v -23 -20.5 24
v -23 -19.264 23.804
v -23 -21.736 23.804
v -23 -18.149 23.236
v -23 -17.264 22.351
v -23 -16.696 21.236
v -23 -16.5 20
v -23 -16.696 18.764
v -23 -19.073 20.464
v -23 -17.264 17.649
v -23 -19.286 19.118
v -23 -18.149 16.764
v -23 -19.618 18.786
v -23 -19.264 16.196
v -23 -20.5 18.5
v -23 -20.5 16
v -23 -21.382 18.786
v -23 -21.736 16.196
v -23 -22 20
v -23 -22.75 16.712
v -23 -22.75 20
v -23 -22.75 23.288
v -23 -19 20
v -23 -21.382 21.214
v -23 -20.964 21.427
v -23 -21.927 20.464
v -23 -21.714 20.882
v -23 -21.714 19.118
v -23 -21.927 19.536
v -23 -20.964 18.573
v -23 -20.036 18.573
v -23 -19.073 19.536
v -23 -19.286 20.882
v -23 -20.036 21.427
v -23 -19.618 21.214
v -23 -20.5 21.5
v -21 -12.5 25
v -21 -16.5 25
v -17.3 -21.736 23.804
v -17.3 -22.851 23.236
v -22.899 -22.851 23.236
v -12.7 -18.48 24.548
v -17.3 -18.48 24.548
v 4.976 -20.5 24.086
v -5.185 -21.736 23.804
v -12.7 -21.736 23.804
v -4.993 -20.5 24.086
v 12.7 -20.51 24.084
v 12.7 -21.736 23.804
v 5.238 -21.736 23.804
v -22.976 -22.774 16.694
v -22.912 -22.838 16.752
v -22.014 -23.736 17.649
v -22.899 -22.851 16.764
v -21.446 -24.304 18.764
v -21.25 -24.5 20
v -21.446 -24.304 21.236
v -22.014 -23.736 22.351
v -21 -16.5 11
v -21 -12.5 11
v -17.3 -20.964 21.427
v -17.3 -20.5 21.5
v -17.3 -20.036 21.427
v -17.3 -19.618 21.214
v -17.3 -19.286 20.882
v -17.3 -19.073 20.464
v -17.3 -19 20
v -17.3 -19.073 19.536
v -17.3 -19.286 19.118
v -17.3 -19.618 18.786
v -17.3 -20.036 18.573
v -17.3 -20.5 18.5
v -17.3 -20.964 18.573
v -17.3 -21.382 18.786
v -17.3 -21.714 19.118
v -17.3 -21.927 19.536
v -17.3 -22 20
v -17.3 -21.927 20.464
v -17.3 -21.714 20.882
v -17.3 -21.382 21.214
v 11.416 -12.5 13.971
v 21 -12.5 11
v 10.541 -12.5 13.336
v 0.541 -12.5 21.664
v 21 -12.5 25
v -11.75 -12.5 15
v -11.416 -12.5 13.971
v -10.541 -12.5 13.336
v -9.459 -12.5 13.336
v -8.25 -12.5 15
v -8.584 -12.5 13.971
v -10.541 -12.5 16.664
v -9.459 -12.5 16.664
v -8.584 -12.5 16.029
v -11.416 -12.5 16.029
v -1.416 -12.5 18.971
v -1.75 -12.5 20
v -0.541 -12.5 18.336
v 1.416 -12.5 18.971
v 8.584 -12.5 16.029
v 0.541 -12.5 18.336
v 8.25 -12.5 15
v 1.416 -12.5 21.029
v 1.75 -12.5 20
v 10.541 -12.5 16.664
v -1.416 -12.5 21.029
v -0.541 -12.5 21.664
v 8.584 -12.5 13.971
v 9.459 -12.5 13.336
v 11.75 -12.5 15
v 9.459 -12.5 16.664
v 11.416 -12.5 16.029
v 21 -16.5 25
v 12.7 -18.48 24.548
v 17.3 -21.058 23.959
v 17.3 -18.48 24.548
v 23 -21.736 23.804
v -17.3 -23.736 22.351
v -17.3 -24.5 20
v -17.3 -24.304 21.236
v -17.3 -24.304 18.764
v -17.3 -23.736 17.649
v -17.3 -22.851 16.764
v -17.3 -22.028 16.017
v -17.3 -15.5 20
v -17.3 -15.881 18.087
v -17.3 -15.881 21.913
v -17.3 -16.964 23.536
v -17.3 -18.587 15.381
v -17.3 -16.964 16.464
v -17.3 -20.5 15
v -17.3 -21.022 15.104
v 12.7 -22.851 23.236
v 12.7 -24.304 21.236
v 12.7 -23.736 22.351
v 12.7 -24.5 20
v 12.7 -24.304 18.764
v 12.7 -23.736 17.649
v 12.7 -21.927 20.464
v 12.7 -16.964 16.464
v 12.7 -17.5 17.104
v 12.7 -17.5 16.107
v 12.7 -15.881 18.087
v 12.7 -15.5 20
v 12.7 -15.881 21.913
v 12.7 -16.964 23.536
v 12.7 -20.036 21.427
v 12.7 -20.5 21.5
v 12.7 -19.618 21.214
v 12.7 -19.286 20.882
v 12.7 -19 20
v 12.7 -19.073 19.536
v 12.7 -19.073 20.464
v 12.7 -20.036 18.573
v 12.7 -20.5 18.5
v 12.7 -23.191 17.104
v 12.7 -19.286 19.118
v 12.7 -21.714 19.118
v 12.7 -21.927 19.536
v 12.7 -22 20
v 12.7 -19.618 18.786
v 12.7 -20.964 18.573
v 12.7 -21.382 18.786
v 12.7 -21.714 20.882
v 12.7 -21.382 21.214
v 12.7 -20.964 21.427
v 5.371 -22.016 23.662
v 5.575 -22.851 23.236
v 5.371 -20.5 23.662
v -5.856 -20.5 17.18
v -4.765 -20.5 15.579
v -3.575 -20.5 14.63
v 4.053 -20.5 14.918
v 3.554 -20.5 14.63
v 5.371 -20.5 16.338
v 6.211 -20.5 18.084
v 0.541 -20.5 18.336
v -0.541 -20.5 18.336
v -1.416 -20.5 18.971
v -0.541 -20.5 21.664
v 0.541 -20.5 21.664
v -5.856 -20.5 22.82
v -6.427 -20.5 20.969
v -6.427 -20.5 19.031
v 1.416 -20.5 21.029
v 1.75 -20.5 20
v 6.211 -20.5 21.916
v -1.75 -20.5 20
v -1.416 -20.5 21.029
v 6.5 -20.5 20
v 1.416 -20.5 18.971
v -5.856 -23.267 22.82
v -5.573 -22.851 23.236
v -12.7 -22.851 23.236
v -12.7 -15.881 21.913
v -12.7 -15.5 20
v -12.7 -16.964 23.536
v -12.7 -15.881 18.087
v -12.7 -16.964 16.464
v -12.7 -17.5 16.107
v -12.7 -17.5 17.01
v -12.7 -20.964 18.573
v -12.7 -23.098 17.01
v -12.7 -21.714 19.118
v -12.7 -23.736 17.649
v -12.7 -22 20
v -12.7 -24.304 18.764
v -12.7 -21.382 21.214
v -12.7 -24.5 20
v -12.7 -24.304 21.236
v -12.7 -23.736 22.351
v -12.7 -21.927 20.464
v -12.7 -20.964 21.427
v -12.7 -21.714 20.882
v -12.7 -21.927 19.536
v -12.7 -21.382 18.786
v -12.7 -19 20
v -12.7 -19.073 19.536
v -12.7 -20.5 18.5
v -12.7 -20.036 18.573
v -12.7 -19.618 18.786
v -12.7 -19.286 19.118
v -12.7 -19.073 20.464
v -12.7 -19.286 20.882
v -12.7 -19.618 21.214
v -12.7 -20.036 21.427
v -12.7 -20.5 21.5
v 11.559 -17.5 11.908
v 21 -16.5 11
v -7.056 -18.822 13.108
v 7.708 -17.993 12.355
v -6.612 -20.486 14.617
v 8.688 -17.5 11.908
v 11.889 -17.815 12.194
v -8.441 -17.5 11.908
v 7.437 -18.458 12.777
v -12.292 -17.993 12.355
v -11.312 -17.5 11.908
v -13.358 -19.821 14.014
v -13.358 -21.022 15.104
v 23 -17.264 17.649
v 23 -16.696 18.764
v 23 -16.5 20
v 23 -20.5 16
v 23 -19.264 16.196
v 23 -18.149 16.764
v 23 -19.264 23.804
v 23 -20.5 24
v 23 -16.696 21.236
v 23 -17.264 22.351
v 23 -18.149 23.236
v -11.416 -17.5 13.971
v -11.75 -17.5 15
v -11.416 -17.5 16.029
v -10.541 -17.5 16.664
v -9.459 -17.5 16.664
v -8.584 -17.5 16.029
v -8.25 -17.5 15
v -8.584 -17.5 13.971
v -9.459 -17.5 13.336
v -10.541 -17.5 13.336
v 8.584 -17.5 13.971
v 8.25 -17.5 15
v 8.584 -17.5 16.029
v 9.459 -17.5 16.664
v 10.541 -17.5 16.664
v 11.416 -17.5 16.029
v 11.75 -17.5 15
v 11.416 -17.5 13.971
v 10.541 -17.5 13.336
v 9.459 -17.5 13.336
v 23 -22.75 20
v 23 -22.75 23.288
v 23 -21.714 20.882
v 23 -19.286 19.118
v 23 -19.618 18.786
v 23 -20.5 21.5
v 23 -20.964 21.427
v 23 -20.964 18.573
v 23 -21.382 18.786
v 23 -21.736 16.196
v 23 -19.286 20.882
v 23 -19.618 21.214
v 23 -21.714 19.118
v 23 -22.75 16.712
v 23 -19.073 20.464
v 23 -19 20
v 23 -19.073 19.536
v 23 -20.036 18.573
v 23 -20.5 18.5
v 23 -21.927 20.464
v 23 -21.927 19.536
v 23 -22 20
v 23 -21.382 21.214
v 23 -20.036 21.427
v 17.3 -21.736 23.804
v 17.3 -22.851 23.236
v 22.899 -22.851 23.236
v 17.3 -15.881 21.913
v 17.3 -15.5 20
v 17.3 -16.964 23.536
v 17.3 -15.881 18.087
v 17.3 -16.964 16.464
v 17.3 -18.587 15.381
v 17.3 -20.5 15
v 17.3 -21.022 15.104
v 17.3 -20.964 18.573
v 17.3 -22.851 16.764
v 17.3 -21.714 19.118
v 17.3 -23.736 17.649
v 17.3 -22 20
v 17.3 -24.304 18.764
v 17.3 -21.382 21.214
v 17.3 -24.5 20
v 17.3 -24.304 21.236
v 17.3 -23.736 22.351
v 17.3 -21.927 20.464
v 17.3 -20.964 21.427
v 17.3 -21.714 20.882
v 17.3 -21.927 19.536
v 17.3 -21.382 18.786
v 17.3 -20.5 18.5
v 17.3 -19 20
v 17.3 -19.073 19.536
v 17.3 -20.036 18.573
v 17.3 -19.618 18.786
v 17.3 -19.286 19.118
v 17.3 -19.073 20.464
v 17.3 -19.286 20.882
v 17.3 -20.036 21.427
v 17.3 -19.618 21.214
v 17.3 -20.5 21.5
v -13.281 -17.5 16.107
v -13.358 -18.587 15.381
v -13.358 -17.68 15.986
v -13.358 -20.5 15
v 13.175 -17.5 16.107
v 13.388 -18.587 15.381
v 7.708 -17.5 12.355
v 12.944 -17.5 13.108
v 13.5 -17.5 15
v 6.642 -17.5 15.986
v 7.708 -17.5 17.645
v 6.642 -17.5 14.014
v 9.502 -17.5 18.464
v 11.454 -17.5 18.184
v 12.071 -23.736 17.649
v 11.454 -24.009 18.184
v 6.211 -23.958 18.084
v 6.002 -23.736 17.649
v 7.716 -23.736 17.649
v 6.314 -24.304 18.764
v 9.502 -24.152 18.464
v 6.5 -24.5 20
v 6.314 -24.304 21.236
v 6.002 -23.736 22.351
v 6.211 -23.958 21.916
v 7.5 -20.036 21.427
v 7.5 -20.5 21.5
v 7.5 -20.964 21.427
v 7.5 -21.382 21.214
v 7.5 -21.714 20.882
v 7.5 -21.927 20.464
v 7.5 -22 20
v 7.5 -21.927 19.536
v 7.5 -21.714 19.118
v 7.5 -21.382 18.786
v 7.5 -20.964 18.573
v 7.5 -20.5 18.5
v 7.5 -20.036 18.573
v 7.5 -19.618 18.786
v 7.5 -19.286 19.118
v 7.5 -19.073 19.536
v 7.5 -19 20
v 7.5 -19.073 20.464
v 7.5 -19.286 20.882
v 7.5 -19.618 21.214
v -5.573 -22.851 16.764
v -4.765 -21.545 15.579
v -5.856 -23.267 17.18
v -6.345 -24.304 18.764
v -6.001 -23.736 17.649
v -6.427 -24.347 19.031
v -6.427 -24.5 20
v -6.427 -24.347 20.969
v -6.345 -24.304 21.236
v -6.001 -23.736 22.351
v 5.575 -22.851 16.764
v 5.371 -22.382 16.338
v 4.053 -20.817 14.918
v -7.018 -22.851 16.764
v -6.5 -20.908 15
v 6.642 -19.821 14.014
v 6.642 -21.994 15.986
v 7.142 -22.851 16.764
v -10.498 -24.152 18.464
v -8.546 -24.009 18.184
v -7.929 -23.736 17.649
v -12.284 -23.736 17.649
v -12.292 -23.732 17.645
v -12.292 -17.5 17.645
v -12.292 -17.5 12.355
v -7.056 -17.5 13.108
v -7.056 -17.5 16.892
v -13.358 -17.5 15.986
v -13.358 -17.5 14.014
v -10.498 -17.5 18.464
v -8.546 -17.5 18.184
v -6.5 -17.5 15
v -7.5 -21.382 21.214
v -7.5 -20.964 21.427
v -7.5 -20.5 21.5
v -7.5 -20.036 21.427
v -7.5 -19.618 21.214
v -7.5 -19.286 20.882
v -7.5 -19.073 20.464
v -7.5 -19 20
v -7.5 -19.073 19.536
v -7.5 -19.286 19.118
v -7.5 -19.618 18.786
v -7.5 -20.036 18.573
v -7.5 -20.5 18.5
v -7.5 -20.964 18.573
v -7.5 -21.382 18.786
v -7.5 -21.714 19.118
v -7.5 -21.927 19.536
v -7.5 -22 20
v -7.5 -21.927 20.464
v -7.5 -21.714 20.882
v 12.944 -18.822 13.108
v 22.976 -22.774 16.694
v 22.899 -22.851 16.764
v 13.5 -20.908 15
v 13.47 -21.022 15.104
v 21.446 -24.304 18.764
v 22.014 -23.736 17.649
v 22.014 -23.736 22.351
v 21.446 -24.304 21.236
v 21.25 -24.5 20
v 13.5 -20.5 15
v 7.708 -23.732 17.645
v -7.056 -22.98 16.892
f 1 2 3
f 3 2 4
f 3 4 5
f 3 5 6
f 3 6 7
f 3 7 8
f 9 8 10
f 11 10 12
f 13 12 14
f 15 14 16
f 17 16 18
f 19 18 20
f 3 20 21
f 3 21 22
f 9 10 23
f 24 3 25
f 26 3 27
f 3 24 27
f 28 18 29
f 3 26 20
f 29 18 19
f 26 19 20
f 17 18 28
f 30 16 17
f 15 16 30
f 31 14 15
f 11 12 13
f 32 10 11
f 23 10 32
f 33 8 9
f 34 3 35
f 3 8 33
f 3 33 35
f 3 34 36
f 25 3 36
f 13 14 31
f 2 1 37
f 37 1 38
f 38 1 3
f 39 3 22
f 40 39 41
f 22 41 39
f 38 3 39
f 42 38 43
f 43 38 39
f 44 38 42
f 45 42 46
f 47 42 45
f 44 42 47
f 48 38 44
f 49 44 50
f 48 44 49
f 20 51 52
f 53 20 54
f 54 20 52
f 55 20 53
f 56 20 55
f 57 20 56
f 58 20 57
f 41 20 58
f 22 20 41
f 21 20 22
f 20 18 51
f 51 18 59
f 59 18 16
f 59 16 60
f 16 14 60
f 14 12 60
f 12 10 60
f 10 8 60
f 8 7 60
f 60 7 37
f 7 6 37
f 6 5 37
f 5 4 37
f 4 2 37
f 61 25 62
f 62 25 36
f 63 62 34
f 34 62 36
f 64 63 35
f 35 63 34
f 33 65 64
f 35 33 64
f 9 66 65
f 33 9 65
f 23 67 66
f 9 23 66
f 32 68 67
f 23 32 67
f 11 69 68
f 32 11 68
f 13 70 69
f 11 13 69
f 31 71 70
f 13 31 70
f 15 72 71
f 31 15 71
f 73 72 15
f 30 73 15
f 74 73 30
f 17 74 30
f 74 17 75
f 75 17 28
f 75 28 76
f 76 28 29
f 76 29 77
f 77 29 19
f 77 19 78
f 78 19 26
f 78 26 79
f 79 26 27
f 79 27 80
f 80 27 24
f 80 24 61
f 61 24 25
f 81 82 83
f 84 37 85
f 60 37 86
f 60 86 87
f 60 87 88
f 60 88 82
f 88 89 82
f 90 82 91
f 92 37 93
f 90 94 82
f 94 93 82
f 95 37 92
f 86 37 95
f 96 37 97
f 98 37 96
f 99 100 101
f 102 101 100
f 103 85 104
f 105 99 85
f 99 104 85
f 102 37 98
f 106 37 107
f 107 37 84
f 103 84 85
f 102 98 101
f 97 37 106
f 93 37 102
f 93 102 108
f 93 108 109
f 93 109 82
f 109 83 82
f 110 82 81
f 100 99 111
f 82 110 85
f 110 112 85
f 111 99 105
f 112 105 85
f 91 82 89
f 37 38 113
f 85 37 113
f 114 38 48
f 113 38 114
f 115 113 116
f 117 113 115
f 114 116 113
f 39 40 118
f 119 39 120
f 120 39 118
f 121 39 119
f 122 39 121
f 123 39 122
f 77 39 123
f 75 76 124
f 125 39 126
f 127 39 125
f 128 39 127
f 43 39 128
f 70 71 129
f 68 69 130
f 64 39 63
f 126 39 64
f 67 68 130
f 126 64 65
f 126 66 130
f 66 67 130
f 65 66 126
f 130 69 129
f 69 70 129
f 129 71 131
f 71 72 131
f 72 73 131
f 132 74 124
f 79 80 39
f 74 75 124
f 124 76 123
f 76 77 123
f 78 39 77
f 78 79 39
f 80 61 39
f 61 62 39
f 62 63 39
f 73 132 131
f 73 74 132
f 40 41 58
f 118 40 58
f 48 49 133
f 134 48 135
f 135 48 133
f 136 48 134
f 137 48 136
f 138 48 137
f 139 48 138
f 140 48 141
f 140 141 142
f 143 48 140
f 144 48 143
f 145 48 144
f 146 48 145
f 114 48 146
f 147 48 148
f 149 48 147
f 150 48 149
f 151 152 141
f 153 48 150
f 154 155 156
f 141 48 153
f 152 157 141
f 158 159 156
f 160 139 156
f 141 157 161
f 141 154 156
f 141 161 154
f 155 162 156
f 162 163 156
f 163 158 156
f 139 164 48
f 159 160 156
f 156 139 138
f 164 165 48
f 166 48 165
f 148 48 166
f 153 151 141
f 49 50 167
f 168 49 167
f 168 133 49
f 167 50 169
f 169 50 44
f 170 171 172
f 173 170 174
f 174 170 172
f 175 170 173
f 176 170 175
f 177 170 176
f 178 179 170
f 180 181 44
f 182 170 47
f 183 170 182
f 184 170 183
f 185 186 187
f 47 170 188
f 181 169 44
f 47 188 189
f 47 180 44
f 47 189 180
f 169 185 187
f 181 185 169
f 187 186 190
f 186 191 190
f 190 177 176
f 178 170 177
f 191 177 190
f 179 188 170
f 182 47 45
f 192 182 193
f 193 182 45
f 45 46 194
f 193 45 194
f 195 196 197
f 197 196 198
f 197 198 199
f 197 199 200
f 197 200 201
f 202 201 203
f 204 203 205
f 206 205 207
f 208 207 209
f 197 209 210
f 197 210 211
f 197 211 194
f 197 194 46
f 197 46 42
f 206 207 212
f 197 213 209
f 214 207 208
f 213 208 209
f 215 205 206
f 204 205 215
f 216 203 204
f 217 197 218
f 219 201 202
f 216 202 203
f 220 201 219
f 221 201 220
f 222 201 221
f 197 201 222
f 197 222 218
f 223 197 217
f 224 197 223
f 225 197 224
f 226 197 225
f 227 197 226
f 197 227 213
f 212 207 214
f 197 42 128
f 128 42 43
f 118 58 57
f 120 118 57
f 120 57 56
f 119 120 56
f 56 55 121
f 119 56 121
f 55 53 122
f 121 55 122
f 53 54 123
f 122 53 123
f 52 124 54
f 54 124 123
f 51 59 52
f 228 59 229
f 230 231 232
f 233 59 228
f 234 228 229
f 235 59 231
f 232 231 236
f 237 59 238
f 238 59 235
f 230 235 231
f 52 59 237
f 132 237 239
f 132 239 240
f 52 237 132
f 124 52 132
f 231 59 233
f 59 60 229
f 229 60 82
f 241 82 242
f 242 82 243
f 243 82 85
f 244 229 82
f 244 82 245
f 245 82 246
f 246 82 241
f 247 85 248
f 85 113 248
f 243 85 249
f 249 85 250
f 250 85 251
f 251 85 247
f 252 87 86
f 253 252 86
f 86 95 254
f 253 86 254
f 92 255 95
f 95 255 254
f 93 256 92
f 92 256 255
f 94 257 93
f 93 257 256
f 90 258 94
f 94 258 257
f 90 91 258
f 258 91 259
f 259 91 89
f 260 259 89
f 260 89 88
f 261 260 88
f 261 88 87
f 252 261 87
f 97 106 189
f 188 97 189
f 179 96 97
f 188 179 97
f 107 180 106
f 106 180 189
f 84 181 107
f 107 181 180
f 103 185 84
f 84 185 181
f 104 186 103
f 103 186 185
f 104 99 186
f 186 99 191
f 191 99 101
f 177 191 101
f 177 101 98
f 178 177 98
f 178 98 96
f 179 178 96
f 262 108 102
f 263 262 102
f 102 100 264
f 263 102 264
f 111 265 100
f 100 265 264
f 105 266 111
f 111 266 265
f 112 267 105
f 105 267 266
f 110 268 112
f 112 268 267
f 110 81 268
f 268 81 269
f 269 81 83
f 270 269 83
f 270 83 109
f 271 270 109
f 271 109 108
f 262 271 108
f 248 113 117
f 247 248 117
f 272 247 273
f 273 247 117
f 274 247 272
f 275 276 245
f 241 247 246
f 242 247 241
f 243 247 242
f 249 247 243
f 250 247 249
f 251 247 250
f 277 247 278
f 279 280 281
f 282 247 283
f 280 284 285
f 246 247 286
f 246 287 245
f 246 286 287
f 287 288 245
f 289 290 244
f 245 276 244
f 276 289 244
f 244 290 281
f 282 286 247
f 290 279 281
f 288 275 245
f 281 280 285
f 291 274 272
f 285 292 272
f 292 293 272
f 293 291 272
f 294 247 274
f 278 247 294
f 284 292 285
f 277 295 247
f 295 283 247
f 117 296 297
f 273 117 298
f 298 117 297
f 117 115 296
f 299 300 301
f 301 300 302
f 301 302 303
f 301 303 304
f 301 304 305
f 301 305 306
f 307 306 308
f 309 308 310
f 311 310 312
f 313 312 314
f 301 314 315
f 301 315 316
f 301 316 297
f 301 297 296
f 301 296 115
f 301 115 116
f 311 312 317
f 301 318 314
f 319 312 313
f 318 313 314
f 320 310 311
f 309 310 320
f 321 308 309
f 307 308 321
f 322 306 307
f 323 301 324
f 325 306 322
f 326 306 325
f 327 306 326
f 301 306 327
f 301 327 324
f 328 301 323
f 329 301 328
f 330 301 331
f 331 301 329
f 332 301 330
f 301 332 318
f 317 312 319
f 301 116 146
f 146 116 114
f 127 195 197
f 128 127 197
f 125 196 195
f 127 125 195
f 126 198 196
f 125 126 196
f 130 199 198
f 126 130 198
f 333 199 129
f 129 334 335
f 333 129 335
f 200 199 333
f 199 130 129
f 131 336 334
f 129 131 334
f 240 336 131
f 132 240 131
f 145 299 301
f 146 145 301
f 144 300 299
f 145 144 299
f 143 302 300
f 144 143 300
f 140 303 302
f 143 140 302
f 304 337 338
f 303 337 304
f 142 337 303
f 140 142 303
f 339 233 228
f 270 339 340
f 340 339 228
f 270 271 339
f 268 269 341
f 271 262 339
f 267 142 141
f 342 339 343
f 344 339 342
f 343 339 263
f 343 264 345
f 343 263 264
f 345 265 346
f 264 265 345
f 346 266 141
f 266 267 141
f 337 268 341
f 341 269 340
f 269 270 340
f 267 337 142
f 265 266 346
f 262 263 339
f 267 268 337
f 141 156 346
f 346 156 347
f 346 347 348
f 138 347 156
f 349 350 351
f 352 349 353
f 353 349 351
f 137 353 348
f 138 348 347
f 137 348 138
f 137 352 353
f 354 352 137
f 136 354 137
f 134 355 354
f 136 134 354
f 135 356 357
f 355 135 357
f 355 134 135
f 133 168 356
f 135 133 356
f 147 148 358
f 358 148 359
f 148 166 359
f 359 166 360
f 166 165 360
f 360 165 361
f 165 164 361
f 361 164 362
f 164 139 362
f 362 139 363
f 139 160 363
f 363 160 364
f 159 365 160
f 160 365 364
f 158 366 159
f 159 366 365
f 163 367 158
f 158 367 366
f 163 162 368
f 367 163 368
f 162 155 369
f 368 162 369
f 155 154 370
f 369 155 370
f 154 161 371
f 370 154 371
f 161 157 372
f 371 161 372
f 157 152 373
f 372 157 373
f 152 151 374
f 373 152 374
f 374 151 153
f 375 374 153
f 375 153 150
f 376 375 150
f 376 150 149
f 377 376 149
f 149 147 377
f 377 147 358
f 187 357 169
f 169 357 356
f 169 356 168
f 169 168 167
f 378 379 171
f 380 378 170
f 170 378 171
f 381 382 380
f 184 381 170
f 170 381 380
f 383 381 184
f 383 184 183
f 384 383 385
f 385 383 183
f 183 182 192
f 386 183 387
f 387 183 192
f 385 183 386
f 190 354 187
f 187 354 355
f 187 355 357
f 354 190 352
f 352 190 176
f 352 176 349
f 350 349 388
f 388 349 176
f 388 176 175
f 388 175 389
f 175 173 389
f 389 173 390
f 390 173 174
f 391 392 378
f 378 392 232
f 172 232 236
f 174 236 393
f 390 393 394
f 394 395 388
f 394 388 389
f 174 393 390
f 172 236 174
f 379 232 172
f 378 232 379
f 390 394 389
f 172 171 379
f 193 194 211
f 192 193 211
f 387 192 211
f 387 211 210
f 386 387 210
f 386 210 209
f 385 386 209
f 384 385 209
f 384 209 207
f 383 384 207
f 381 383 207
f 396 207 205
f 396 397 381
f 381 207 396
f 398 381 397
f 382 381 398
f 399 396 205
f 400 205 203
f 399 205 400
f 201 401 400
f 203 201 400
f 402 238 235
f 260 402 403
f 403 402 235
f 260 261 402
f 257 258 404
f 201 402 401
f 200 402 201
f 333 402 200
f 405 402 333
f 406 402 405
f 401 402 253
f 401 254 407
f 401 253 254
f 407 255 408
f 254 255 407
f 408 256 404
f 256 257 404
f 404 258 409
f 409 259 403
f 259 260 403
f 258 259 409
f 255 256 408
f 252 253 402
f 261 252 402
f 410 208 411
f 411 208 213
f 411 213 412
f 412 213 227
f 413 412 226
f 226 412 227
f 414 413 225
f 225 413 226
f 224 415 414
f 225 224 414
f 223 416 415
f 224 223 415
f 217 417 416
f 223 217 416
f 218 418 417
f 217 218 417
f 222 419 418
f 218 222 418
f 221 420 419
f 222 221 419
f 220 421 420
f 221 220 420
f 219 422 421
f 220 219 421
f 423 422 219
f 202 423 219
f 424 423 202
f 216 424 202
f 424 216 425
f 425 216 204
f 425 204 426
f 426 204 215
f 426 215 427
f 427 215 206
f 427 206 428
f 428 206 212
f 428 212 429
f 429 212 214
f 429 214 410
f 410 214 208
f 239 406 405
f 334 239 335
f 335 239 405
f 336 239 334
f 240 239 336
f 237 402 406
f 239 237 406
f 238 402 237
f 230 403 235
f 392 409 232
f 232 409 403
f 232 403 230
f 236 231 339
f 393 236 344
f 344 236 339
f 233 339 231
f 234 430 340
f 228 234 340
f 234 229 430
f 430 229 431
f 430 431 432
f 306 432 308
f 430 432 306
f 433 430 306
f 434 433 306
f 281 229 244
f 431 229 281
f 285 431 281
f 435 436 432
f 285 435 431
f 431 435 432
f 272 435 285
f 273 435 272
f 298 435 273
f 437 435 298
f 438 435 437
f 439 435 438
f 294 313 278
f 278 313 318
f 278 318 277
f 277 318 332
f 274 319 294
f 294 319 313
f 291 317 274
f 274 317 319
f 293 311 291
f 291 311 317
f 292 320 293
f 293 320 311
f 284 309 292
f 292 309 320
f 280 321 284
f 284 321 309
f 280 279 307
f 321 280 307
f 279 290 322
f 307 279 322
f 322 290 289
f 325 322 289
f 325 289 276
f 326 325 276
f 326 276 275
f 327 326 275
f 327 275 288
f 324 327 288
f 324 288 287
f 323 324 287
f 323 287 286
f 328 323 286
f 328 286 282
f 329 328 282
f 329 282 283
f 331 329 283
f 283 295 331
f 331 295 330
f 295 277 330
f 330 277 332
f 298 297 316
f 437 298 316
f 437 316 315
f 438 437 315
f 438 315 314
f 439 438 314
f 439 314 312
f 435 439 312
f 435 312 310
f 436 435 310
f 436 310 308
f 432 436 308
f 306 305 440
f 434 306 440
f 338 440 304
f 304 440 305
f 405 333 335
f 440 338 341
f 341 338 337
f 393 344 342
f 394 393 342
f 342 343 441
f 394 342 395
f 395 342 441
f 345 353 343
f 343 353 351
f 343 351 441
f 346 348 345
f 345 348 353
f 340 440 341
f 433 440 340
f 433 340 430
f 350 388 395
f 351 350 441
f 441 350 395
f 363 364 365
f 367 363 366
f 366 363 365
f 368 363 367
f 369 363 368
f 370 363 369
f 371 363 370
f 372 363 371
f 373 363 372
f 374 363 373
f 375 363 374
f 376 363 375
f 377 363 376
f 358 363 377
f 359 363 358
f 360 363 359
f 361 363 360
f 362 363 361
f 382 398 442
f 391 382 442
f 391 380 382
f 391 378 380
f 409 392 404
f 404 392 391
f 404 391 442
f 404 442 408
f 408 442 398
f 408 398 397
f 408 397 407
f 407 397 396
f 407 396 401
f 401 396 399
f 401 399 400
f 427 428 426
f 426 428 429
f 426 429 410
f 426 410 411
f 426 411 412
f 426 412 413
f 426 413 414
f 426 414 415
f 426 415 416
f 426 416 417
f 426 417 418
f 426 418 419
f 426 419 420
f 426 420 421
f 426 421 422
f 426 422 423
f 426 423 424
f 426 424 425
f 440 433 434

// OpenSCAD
//// rotate to print, translate to testfit
//rotate([-90, 0, 0])
translate([0, -12.5, 0])
  carriage_bracket();

mount_spacing = 46;
mount_height = 8;
m3_washer_rad = 7/2;
m3_washer_height = 0.6;
m3_nut_height = 4; // lock nut
m3_rad = 3.5/2;

module carriage_bracket()
{
  difference()
  {
    hull()
    {
      translate([0, -2, 18]) cube([mount_spacing-4, 4, 14], center = true);
      translate([0, -mount_height, 20]) rotate([0, 90, 0])
        cylinder(r = 8/2, h = mount_spacing, center = true, $fn=20);
    }

    // cut for clearance of the traxxas
    for (i = [-1, 1]) {
      translate([i*mount_spacing/2, -mount_height-(m3_rad+0.5), 20-20]) {
        rotate([0,0,-135]) cube(40);
      }
    }

    // rod end mount holes
    difference()
    {
      translate([0, -mount_height, 20]) rotate([0, 90, 0])
        cylinder(r = 3/2, h = mount_spacing+1, center = true, $fn=20);
      cube([2*(m3_washer_rad+4), 50, 50], center = true);
    }

    // rod end nut traps
    for (i = [-1, 1]) {
      translate([i*(mount_spacing/2-8), -mount_height, 20])
        rotate([0, 90, 0])
          cylinder(r= 10/2, h=m3_nut_height+m3_washer_height, center = true);
    }

    // mount holes
    for(i = [[0, -8, 20],
             [-10, -5, 15],
             [10, -5, 15]])
    {
      translate(i) rotate([90, 0, 0]) cylinder(r = m3_rad, h=50, center = true, $fn=10);
      if (i[0] == 0) {
        // middle hole has a nut - make room to grab it
        translate(i) rotate([90, 0, 0]) cylinder(r = m3_washer_rad+3, h=50);
      } else {
        translate(i) rotate([90, 0, 0]) cylinder(r = m3_washer_rad, h=50);
      }
    }
  }
}

// rod end mounts: 46 apart, 8 out, inline with middle hole
// mount holes: 20 high, 16 high +/-10 out
